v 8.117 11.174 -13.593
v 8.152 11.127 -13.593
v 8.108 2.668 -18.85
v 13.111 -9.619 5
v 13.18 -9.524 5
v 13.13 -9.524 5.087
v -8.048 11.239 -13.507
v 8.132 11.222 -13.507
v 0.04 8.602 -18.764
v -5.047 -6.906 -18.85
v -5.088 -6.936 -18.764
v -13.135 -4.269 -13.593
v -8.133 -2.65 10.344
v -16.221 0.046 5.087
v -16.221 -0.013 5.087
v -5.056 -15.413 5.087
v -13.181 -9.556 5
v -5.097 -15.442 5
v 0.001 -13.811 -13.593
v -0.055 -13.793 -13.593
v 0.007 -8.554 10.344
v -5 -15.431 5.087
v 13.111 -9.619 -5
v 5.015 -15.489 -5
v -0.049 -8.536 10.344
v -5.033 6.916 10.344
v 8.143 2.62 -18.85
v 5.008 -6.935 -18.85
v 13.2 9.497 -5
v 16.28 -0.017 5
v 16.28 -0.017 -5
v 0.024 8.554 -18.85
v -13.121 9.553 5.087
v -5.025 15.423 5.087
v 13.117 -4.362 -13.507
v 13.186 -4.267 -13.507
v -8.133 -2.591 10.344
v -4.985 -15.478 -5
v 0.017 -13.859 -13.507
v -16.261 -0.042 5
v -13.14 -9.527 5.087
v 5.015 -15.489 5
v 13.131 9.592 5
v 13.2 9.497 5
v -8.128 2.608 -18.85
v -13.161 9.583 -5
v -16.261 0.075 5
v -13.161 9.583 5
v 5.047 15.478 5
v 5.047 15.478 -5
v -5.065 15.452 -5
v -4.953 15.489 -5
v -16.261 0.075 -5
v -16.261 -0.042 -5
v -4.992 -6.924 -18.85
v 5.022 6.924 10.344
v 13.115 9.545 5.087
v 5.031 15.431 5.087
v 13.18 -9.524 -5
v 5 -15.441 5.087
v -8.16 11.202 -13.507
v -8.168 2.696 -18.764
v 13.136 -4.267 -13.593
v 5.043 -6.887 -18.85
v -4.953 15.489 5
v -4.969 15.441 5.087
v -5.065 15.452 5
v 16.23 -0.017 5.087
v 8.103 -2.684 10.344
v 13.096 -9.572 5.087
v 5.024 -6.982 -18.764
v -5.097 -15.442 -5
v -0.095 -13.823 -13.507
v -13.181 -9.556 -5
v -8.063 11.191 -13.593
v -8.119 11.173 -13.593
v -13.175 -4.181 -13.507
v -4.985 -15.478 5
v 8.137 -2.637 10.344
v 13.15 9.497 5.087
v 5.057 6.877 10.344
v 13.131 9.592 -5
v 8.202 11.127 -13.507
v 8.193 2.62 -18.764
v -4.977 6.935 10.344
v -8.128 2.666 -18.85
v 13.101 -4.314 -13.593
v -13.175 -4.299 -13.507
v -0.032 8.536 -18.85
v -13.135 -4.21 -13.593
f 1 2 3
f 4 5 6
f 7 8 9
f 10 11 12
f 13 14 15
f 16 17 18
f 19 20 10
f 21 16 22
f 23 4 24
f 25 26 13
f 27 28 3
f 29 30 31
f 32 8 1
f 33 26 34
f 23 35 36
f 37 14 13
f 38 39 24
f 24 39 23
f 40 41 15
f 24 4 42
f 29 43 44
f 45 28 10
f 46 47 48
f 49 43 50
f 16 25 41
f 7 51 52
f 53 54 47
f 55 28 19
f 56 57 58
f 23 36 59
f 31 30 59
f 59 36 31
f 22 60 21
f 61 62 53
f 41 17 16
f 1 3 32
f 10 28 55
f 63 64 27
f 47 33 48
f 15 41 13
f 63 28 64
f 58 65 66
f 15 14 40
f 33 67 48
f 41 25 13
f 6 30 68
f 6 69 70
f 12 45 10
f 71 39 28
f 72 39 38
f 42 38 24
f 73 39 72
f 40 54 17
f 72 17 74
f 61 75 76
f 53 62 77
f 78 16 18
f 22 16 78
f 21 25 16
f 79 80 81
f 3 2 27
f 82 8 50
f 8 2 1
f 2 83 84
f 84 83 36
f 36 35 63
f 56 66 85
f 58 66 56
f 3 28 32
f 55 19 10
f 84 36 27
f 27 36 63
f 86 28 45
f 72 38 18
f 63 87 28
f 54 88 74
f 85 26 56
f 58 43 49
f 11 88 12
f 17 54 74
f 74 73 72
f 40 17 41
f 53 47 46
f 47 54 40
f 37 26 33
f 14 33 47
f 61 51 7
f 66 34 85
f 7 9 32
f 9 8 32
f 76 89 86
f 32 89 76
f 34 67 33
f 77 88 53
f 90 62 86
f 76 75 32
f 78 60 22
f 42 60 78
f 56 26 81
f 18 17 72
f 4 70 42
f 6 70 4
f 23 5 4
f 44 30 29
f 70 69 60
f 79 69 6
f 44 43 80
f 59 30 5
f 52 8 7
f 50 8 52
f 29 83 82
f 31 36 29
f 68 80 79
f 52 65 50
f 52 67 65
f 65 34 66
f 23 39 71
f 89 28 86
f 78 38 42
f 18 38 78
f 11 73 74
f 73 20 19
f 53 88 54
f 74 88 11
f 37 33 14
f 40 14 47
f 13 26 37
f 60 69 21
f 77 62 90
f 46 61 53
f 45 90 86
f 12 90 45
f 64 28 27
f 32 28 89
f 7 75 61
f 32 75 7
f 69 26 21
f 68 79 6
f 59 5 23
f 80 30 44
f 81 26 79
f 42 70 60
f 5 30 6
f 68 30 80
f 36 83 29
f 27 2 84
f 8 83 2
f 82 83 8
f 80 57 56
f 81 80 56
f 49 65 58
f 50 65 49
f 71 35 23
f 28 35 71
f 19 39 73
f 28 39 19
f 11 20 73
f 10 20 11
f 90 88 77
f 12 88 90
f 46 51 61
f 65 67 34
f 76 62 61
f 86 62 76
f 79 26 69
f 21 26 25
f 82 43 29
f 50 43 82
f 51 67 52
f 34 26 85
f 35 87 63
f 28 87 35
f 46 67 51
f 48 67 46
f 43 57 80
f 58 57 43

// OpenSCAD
// Auto-generated OpenSCAD file

    inner_points = 10*[[1.3099900587146427, 0.9497157652788513, -0.4999999999995077], [1.3099900587145388, 0.9497157652784762, 0.5000000000004923], [-1.3099900587145388, -0.9497157652784762, -0.5000000000004923], [-1.3099900587146427, -0.9497157652788513, 0.4999999999995077], [1.6180331406628494, -0.001656643225752208, -0.4999999999998327], [1.6180331406627457, -0.0016566432261273523, 0.5000000000001673], [0.5015752992619325, 1.5383290310986224, -0.49999999999937084], [0.5015752992618286, 1.5383290310982474, 0.5000000000006292], [-0.5015752992618286, -1.5383290310982474, -0.5000000000006292], [-0.5015752992619325, -1.5383290310986224, 0.49999999999937084], [-1.6180331406627457, 0.0016566432261273523, -0.5000000000001673], [-1.6180331406628494, 0.001656643225752208, 0.4999999999998327], [1.3080425578016073, -0.9523962703252791, -0.5000000000002215], [1.3080425578015036, -0.9523962703256543, 0.49999999999977845], [-0.49842417659141613, 1.5393528929194857, -0.49999999999947425], [-0.49842417659151983, 1.5393528929191105, 0.5000000000005257], [0.49842417659151983, -1.5393528929191105, -0.5000000000005257], [0.49842417659141613, -1.5393528929194857, 0.49999999999947425], [-1.3080425578015036, 0.9523962703256543, -0.49999999999977845], [-1.3080425578016073, 0.9523962703252791, 0.5000000000002215], [0.8101566572239665, 1.1126874591532696, -1.3506508083515383], [-1.3094517827007117, -0.4239849287192254, -1.350650808352335], [1.308580833815434, -0.42666543376602845, -1.350650808352064], [-0.0014092248991565137, -1.3763811990446921, -1.3506508083525566], [-0.8078764834388312, 1.1143441023792096, -1.3506508083517057], [0.8092857083384629, 0.2620370966671998, -1.876381920470991], [-0.5007043503761278, -0.687678668611464, -1.8763819204714836], [0.000870948885752787, 0.850650362486971, -1.8763819204708543], [-0.8087474323243347, 0.2636937398931396, -1.8763819204711585], [0.4992951254772207, -0.688702530432327, -1.87638192047138], [0.5007043503762161, 0.6876786686117831, 1.0257311121194437], [-0.8092857083383747, -0.2620370966668807, 1.0257311121189512], [0.808747432324423, -0.2636937398928205, 1.0257311121191186], [-0.0008709488856644687, -0.8506503624866519, 1.0257311121188144], [-0.49929512547713234, 0.6887025304326461, 1.0257311121193402]];

    outer_points = 10*[[1.6792886560853284, 0.2013716374572302, 0.08644687340106805], [1.4757777400560284, -0.2013716374572302, -0.8059550324508248], [-1.4757777400560284, 0.2013716374572302, 0.8059550324508248], [-1.6792886560853284, -0.2013716374572302, -0.08644687340106805], [1.2928432796682825, 1.0718860131747094, -0.21829021445516045], [1.0893323636389824, 0.6691427382602492, -1.1106921203070534], [1.4631699692206952, -0.6691427382602492, 0.5285977920443675], [1.2596590531913952, -1.0718860131747094, -0.36380411380752536], [-1.2596590531913952, 1.0718860131747094, 0.36380411380752536], [-1.4631699692206952, 0.6691427382602492, -0.5285977920443675], [-1.0893323636389824, -0.6691427382602492, 1.1106921203070534], [-1.2928432796682825, -1.0718860131747094, 0.21829021445516045], [0.451442838965622, 1.609893485063508, -0.26921426159590167], [0.24793192293632205, 1.2071502101490479, -1.1616161674477947], [0.7270372118526772, -1.2071502101490479, 0.9392759187099872], [0.5235262958233773, -1.609893485063508, 0.046874012858094255], [-0.5235262958233773, 1.609893485063508, -0.046874012858094255], [-0.7270372118526772, 1.2071502101490479, -0.9392759187099872], [-0.24793192293632205, -1.2071502101490479, 1.1616161674477947], [-0.451442838965622, -1.609893485063508, 0.26921426159590167], [1.5892095552954468, 0.15465966592254854, 1.081285426793642], [-0.9632927775642309, 0.15465966592254854, 1.6633797550563276], [0.9639278014574195, 1.5631815135288265, 0.5882104610096014], [-0.6136053966132589, 1.5631815135288265, 0.9479645405344798], [0.39812173364181414, -0.715854709794931, 1.7457765941747487], [1.1470922329142266, 0.9963044555500771, 1.3913923782528013], [-0.43044096515645186, 0.9963044555500771, 1.7511464577776796], [0.9309735460495933, 0.1257900798325976, 1.8335432968961007], [-0.04399558873940601, 0.1257900798325976, 2.055883545633908], [0.30569179221156606, 1.5343119274388755, 1.3404683311120602], [0.60355769038524, -0.6537105631857435, -0.9920240551898661], [-0.9739755076854384, -0.6537105631857435, -0.6322699756649878], [0.21711231396819408, 0.21680381253173597, -1.2967611430460946], [-0.7578568208208052, 0.21680381253173597, -1.0744208943082874], [-0.13257506698277793, -1.1917180350745418, -0.5813459285242466]];

    // Convex hull for inner set (I)
    module inner_hull() {
        hull() {
            for (p = inner_points) {
                translate(p) sphere(r=0.1);
            }
        }
    }

    // Convex hull for outer set (O) minus inner hull (O \ I)
    module outer_minus_inner() {
        difference() {
            hull() {
                for (p = outer_points) {
                    translate(p) sphere(r=0.1);
                }
            }
            inner_hull(); // Subtract inner hull
        }
    }

    // Convex hull for outer set (O) minus all translated inner hulls
    module outer_minus_AllTranslationInner() {
        difference() {
            hull() {
                for (p = outer_points) {
                    translate(p) sphere(r=0.1);
                }
            }
            hull() {
                translate([0,0,50]) inner_hull();
                translate([0,0,-50]) inner_hull();
            }; // Subtract translated inner hulls
        }
    }

    // Difference between outer_minus_inner and outer_minus_AllTranslationInner
    module outer_minus_inner_diff() {
        difference() {
            // Outer minus inner
            difference() {
                hull() {
                    for (p = outer_points) {
                        translate(p) sphere(r=0.1);
                    }
                }
                inner_hull();
            }

            // Subtract Outer minus AllTranslationInner
            difference() {
                hull() {
                    for (p = outer_points) {
                        translate(p) sphere(r=0.1);
                    }
                }
                hull() {
                    translate([0,0,50]) inner_hull();
                    translate([0,0,-50]) inner_hull();
                };
            }
        }
    }

    // Rendering all with colors applied
    color([1, 0, 0, 0.5]) inner_hull(); // Transparent red
    
